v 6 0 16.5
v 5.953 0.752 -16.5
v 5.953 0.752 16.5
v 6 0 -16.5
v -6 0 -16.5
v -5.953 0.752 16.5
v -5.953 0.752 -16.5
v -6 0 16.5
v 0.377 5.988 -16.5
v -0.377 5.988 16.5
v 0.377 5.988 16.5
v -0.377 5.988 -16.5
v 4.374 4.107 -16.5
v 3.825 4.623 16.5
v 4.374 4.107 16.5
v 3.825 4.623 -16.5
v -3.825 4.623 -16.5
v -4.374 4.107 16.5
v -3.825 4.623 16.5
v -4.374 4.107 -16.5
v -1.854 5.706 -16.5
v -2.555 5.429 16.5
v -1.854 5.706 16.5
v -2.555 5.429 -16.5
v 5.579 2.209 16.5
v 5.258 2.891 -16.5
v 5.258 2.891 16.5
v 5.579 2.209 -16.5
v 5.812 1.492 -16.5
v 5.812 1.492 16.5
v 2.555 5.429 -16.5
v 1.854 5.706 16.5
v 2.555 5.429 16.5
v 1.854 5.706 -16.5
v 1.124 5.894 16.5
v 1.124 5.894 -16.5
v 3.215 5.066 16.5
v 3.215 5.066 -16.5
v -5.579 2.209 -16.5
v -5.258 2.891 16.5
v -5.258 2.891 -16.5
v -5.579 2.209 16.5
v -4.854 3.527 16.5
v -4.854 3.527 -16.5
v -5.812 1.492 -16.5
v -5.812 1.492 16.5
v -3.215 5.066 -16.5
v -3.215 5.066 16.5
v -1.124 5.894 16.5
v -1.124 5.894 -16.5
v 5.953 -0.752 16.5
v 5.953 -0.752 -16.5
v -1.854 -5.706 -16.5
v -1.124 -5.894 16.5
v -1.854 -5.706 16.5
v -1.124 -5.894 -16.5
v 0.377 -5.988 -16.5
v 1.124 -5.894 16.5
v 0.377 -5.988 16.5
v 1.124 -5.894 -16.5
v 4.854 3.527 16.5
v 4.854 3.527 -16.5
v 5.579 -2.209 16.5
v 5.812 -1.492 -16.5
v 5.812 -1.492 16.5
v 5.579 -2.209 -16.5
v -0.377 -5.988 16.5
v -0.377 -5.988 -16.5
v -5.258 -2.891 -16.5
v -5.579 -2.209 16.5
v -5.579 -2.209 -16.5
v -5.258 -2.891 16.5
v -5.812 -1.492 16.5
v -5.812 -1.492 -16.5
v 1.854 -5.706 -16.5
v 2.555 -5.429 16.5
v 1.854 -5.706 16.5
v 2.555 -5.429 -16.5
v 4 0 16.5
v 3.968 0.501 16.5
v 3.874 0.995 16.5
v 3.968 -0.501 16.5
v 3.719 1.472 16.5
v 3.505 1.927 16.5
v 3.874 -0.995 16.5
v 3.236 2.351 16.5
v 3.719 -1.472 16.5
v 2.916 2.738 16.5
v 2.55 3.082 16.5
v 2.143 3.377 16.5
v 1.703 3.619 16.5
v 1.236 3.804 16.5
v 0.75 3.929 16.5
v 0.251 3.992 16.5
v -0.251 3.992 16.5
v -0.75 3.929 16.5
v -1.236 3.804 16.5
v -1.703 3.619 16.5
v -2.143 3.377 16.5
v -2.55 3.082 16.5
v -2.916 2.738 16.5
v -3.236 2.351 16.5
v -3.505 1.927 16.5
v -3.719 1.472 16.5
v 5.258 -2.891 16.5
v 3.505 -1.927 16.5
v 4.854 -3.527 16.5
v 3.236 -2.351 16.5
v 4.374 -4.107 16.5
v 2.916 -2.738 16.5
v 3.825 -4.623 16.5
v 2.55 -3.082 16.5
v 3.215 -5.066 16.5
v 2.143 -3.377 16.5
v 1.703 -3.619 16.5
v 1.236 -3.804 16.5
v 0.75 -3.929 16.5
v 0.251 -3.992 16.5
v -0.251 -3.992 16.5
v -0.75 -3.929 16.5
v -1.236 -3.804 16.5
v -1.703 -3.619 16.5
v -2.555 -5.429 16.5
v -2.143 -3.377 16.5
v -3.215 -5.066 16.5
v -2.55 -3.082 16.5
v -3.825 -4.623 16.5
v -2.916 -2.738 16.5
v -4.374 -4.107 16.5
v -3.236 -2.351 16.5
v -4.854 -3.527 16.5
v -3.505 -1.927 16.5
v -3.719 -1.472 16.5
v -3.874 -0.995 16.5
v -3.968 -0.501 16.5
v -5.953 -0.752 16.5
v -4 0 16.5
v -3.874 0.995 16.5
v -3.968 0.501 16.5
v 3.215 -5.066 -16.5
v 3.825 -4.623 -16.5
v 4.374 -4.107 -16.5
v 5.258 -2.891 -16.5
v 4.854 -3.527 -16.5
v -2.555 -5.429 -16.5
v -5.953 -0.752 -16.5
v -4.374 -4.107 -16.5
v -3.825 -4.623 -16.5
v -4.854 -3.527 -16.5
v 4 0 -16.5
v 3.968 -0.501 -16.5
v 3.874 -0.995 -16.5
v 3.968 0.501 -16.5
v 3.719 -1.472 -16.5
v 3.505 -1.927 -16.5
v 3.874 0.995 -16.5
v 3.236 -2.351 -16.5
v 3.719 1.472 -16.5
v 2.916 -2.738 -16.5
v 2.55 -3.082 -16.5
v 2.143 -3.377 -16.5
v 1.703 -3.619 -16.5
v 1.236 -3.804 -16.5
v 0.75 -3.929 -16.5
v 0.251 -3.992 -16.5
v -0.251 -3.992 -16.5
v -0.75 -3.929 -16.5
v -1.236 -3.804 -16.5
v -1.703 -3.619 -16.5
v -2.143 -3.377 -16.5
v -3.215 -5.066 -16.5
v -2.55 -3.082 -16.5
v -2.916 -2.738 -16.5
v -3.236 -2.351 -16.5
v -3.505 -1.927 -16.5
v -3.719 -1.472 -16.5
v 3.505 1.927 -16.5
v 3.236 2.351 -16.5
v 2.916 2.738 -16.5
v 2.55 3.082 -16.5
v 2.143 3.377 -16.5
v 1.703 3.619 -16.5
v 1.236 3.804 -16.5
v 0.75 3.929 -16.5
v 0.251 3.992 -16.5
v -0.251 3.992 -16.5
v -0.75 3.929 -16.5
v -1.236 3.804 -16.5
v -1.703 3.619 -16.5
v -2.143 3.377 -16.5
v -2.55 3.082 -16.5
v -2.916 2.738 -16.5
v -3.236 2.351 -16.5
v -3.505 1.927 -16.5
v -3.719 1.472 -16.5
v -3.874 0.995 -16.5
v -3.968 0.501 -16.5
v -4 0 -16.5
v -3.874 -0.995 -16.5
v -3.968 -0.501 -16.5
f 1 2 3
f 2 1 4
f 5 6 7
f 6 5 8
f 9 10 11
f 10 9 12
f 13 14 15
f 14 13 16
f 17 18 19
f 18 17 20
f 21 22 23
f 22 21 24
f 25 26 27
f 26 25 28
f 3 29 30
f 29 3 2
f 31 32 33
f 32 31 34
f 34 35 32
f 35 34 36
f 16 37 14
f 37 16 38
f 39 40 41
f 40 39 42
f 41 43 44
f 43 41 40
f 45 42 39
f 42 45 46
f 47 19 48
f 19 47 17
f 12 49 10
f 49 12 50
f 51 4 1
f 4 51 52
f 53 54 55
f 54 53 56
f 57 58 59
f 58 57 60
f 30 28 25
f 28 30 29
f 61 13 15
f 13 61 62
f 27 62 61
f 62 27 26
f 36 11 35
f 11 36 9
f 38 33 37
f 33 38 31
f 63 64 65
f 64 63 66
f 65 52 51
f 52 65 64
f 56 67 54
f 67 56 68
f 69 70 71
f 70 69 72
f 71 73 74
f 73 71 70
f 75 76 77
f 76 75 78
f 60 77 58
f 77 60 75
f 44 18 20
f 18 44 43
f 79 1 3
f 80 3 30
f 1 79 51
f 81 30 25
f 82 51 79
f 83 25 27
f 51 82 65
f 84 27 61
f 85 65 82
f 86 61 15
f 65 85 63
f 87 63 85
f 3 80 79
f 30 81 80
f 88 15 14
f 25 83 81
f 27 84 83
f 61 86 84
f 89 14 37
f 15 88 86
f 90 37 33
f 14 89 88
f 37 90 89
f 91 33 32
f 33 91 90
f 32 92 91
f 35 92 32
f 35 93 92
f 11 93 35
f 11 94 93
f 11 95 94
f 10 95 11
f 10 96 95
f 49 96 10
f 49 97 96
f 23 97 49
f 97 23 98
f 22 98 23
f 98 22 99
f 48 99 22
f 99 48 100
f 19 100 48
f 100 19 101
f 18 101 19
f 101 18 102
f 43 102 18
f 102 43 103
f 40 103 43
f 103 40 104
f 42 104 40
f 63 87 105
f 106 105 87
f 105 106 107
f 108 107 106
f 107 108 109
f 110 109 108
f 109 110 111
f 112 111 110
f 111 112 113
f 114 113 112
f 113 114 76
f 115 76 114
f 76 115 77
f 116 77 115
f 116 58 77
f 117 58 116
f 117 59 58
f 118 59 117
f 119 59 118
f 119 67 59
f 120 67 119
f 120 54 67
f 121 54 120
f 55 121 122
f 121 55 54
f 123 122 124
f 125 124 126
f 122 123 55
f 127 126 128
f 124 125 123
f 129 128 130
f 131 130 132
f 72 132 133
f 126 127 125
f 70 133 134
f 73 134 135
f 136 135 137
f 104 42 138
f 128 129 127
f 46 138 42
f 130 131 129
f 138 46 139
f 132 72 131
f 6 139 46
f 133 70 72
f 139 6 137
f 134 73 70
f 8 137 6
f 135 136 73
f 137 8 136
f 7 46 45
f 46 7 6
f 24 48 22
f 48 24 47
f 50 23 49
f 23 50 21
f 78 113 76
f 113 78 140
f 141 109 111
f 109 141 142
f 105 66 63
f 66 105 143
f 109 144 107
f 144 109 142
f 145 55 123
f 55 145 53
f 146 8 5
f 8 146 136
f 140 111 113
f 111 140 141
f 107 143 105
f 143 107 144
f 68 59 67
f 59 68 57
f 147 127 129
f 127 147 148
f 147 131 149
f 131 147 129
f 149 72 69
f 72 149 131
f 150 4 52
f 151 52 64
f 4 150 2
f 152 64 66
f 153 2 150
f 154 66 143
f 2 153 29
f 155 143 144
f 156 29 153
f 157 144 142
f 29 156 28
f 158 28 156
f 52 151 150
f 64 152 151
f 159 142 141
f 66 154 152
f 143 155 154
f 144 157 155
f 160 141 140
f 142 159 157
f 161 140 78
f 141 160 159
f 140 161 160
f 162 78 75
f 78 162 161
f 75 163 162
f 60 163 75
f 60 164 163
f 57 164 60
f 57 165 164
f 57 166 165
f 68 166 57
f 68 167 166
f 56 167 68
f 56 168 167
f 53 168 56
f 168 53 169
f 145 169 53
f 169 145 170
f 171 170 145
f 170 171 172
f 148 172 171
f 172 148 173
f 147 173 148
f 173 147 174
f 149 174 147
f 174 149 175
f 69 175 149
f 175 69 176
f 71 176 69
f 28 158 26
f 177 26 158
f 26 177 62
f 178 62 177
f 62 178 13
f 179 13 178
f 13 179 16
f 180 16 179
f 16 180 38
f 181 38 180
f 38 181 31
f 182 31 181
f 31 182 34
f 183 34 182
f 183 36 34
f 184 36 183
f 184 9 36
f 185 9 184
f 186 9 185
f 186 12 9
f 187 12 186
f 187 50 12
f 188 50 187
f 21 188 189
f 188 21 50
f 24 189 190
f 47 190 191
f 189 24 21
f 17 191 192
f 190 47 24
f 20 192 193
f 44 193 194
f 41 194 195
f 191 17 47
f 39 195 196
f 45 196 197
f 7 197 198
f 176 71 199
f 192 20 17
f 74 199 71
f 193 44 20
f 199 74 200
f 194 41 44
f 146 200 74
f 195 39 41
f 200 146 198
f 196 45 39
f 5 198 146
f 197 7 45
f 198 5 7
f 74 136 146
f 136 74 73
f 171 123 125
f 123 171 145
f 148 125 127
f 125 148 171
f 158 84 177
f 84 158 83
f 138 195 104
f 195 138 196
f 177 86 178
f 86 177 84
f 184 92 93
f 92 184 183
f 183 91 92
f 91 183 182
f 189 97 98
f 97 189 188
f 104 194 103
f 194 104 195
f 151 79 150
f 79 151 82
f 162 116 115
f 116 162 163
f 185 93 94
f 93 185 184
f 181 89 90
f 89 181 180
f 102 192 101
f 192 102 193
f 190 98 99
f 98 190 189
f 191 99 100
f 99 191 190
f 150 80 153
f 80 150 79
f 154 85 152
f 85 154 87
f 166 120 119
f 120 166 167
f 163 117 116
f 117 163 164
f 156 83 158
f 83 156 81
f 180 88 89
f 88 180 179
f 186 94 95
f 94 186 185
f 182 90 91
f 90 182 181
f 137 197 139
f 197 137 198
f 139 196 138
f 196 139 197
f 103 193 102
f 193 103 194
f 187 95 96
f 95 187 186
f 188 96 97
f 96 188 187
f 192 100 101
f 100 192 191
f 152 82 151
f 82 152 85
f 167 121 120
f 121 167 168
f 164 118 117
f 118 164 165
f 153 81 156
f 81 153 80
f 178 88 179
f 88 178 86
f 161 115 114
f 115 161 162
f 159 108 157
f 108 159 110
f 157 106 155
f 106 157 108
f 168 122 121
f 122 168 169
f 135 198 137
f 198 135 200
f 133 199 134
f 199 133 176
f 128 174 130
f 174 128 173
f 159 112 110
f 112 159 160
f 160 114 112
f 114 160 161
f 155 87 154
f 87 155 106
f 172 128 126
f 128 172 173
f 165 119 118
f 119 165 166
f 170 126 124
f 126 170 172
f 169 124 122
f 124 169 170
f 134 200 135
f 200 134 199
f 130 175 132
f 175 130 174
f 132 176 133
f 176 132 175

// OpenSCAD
$fn = 50;


difference() {
	union() {
		translate(v = [0, 0, -16.5000000000]) {
			cylinder(h = 33, r = 6.0000000000);
		}
	}
	union() {
		translate(v = [0, 0, -100.0000000000]) {
			cylinder(h = 200, r = 4.0000000000);
		}
	}
}
